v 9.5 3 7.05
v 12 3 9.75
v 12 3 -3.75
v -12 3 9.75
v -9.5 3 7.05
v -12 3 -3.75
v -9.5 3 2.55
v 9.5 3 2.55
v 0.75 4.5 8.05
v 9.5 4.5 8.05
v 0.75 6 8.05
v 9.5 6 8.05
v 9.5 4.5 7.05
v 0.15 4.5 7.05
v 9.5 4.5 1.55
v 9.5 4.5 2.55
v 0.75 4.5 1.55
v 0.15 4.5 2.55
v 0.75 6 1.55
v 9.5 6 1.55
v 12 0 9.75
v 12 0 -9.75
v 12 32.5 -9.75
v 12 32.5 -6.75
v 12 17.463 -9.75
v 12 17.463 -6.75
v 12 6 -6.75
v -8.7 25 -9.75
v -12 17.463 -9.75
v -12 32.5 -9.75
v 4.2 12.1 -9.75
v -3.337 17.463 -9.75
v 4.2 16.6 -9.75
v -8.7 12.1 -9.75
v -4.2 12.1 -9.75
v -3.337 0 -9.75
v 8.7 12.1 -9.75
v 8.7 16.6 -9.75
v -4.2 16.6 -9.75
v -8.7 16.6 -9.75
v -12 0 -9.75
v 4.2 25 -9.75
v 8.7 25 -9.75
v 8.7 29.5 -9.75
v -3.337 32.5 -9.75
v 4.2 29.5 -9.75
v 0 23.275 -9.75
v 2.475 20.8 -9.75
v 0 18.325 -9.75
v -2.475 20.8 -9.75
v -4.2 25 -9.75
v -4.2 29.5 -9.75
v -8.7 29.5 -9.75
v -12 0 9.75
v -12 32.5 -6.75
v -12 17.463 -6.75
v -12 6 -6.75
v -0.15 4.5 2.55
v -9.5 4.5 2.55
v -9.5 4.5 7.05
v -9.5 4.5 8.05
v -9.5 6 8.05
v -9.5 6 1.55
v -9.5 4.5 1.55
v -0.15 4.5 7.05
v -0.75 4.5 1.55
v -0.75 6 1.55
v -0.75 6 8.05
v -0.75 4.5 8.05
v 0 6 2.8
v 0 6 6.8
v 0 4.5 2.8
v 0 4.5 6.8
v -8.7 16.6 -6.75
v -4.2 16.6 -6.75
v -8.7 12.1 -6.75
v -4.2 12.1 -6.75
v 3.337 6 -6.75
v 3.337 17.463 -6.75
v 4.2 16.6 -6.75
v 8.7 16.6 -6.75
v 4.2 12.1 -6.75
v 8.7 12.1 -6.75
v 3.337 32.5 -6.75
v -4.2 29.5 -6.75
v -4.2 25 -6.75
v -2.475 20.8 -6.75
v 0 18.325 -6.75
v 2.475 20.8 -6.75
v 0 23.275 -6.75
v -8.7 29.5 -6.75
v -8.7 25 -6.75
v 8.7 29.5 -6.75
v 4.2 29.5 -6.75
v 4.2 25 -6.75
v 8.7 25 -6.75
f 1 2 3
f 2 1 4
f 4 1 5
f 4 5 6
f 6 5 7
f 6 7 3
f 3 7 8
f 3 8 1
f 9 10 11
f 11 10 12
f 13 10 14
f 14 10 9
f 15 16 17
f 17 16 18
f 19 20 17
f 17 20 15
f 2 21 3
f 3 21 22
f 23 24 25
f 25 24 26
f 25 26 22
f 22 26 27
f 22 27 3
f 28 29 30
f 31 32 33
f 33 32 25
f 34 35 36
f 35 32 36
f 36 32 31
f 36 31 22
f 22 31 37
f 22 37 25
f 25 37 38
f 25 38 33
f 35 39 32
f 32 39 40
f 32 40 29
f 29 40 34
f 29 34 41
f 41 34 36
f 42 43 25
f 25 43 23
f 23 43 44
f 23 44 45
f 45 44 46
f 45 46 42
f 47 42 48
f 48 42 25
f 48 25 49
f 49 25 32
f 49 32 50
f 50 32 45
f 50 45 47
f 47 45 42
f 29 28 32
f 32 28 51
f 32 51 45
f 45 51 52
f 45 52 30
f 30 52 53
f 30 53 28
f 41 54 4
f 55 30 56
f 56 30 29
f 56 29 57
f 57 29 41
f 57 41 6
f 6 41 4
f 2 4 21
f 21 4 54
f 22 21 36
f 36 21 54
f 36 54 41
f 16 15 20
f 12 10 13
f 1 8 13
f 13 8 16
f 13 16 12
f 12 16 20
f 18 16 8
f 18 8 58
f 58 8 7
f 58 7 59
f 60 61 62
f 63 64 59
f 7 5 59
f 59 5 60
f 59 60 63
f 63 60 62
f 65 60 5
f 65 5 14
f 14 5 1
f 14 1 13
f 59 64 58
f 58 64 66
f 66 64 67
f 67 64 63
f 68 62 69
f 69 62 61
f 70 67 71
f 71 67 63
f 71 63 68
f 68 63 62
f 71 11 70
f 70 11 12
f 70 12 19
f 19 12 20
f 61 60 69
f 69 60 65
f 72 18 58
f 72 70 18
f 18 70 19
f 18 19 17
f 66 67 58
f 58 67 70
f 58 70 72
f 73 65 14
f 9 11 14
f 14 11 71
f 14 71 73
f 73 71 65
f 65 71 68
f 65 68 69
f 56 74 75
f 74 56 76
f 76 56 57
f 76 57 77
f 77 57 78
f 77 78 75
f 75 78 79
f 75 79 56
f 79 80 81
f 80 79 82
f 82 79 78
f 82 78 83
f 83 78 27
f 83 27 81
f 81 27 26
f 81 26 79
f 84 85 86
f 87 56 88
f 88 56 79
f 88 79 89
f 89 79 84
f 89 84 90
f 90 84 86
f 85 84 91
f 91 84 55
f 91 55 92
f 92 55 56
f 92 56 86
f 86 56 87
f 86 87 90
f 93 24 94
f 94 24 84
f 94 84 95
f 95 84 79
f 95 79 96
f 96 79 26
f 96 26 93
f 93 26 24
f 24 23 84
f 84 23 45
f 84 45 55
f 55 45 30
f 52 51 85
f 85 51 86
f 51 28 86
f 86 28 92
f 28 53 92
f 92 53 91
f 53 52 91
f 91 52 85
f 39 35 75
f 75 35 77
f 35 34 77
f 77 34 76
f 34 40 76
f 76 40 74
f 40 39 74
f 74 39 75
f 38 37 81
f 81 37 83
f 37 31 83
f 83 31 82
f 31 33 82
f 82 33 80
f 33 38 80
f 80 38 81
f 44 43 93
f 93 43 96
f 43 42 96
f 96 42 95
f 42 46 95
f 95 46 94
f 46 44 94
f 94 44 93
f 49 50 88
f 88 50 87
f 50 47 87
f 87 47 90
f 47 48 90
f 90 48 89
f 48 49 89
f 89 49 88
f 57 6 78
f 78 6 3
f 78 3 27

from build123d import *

# Parameters (mm, degrees)
SKETCH1_W           = 24
SKETCH1_H           = 19.5
BOSS_EXTRUDE1_DEPTH = 3
SKETCH3_W           = 19
SKETCH3_H           = 4.5
BOSS_EXTRUDE2_DEPTH = 1.5
SKETCH4_W           = 19
SKETCH4_H           = 6.5
BOSS_EXTRUDE3_DEPTH = 1.5
CUT_EXTRUDE1_DEPTH  = 1.5
SKETCH6_W           = 24
SKETCH6_H           = 3
BOSS_EXTRUDE4_DEPTH = 29.5
SKETCH7_W           = 4.5
SKETCH7_H           = 4.5
CUT_EXTRUDE2_DEPTH  = 39.373167709
CHAMFER1_SIZE       = 3


with BuildPart() as part:
    # Sketch1 → Boss-Extrude1 (new body)
    with BuildSketch(Plane(origin=(0, 0, 0), x_dir=(1, 0, 0), z_dir=(0, 1, 0))):
        Rectangle(SKETCH1_W, SKETCH1_H)
    extrude(amount=BOSS_EXTRUDE1_DEPTH)

    # Sketch3 → Boss-Extrude2 (add)
    with BuildSketch(Plane(origin=(0, 3, 0), x_dir=(1, 0, 0), z_dir=(0, 1, 0))):
        with Locations((0, -4.8)):
            Rectangle(SKETCH3_W, SKETCH3_H)
    extrude(amount=BOSS_EXTRUDE2_DEPTH)

    # Sketch4 → Boss-Extrude3 (add)
    with BuildSketch(Plane(origin=(0, 4.5, 0), x_dir=(1, 0, 0), z_dir=(0, 1, 0))):
        with Locations((0, -4.8)):
            Rectangle(SKETCH4_W, SKETCH4_H)
    extrude(amount=BOSS_EXTRUDE3_DEPTH)

    # Sketch5 → Cut-Extrude1 (cut)
    with BuildSketch(Plane(origin=(0, 6, 0), x_dir=(1, 0, 0), z_dir=(0, 1, 0))):
        Polygon((0, -2.8), (0.75, -1.55), (-0.75, -1.55), align=None)
        Polygon((0, -6.8), (0.75, -8.05), (-0.75, -8.05), align=None)
    extrude(amount=-CUT_EXTRUDE1_DEPTH, mode=Mode.SUBTRACT)

    # Sketch6 → Boss-Extrude4 (add)
    with BuildSketch(Plane(origin=(0, 3, 0), x_dir=(1, 0, 0), z_dir=(0, 1, 0))):
        with Locations((0, 8.25)):
            Rectangle(SKETCH6_W, SKETCH6_H)
    extrude(amount=BOSS_EXTRUDE4_DEPTH)

    # Sketch7 → Cut-Extrude2 (cut, through all)
    with BuildSketch(Plane.XY.offset(-6.75)):
        with Locations((-6.45, 27.25)):
            Rectangle(SKETCH7_W, SKETCH7_H)
        with Locations((-6.45, 14.35)):
            Rectangle(SKETCH7_W, SKETCH7_H)
        with Locations((6.45, 14.35)):
            Rectangle(SKETCH7_W, SKETCH7_H)
        with Locations((6.45, 27.25)):
            Rectangle(SKETCH7_W, SKETCH7_H)
        Polygon((-2.474873734, 20.8), (0, 23.274873734), (2.474873734, 20.8), (0, 18.325126266), align=None)
    extrude(amount=-CUT_EXTRUDE2_DEPTH, mode=Mode.SUBTRACT)

    # Chamfer1
    chamfer1_edges = [part.edges().sort_by_distance(p)[0] for p in [
        (0, 3, -6.75),
    ]]
    chamfer(chamfer1_edges, length=CHAMFER1_SIZE)


solid = part.part
